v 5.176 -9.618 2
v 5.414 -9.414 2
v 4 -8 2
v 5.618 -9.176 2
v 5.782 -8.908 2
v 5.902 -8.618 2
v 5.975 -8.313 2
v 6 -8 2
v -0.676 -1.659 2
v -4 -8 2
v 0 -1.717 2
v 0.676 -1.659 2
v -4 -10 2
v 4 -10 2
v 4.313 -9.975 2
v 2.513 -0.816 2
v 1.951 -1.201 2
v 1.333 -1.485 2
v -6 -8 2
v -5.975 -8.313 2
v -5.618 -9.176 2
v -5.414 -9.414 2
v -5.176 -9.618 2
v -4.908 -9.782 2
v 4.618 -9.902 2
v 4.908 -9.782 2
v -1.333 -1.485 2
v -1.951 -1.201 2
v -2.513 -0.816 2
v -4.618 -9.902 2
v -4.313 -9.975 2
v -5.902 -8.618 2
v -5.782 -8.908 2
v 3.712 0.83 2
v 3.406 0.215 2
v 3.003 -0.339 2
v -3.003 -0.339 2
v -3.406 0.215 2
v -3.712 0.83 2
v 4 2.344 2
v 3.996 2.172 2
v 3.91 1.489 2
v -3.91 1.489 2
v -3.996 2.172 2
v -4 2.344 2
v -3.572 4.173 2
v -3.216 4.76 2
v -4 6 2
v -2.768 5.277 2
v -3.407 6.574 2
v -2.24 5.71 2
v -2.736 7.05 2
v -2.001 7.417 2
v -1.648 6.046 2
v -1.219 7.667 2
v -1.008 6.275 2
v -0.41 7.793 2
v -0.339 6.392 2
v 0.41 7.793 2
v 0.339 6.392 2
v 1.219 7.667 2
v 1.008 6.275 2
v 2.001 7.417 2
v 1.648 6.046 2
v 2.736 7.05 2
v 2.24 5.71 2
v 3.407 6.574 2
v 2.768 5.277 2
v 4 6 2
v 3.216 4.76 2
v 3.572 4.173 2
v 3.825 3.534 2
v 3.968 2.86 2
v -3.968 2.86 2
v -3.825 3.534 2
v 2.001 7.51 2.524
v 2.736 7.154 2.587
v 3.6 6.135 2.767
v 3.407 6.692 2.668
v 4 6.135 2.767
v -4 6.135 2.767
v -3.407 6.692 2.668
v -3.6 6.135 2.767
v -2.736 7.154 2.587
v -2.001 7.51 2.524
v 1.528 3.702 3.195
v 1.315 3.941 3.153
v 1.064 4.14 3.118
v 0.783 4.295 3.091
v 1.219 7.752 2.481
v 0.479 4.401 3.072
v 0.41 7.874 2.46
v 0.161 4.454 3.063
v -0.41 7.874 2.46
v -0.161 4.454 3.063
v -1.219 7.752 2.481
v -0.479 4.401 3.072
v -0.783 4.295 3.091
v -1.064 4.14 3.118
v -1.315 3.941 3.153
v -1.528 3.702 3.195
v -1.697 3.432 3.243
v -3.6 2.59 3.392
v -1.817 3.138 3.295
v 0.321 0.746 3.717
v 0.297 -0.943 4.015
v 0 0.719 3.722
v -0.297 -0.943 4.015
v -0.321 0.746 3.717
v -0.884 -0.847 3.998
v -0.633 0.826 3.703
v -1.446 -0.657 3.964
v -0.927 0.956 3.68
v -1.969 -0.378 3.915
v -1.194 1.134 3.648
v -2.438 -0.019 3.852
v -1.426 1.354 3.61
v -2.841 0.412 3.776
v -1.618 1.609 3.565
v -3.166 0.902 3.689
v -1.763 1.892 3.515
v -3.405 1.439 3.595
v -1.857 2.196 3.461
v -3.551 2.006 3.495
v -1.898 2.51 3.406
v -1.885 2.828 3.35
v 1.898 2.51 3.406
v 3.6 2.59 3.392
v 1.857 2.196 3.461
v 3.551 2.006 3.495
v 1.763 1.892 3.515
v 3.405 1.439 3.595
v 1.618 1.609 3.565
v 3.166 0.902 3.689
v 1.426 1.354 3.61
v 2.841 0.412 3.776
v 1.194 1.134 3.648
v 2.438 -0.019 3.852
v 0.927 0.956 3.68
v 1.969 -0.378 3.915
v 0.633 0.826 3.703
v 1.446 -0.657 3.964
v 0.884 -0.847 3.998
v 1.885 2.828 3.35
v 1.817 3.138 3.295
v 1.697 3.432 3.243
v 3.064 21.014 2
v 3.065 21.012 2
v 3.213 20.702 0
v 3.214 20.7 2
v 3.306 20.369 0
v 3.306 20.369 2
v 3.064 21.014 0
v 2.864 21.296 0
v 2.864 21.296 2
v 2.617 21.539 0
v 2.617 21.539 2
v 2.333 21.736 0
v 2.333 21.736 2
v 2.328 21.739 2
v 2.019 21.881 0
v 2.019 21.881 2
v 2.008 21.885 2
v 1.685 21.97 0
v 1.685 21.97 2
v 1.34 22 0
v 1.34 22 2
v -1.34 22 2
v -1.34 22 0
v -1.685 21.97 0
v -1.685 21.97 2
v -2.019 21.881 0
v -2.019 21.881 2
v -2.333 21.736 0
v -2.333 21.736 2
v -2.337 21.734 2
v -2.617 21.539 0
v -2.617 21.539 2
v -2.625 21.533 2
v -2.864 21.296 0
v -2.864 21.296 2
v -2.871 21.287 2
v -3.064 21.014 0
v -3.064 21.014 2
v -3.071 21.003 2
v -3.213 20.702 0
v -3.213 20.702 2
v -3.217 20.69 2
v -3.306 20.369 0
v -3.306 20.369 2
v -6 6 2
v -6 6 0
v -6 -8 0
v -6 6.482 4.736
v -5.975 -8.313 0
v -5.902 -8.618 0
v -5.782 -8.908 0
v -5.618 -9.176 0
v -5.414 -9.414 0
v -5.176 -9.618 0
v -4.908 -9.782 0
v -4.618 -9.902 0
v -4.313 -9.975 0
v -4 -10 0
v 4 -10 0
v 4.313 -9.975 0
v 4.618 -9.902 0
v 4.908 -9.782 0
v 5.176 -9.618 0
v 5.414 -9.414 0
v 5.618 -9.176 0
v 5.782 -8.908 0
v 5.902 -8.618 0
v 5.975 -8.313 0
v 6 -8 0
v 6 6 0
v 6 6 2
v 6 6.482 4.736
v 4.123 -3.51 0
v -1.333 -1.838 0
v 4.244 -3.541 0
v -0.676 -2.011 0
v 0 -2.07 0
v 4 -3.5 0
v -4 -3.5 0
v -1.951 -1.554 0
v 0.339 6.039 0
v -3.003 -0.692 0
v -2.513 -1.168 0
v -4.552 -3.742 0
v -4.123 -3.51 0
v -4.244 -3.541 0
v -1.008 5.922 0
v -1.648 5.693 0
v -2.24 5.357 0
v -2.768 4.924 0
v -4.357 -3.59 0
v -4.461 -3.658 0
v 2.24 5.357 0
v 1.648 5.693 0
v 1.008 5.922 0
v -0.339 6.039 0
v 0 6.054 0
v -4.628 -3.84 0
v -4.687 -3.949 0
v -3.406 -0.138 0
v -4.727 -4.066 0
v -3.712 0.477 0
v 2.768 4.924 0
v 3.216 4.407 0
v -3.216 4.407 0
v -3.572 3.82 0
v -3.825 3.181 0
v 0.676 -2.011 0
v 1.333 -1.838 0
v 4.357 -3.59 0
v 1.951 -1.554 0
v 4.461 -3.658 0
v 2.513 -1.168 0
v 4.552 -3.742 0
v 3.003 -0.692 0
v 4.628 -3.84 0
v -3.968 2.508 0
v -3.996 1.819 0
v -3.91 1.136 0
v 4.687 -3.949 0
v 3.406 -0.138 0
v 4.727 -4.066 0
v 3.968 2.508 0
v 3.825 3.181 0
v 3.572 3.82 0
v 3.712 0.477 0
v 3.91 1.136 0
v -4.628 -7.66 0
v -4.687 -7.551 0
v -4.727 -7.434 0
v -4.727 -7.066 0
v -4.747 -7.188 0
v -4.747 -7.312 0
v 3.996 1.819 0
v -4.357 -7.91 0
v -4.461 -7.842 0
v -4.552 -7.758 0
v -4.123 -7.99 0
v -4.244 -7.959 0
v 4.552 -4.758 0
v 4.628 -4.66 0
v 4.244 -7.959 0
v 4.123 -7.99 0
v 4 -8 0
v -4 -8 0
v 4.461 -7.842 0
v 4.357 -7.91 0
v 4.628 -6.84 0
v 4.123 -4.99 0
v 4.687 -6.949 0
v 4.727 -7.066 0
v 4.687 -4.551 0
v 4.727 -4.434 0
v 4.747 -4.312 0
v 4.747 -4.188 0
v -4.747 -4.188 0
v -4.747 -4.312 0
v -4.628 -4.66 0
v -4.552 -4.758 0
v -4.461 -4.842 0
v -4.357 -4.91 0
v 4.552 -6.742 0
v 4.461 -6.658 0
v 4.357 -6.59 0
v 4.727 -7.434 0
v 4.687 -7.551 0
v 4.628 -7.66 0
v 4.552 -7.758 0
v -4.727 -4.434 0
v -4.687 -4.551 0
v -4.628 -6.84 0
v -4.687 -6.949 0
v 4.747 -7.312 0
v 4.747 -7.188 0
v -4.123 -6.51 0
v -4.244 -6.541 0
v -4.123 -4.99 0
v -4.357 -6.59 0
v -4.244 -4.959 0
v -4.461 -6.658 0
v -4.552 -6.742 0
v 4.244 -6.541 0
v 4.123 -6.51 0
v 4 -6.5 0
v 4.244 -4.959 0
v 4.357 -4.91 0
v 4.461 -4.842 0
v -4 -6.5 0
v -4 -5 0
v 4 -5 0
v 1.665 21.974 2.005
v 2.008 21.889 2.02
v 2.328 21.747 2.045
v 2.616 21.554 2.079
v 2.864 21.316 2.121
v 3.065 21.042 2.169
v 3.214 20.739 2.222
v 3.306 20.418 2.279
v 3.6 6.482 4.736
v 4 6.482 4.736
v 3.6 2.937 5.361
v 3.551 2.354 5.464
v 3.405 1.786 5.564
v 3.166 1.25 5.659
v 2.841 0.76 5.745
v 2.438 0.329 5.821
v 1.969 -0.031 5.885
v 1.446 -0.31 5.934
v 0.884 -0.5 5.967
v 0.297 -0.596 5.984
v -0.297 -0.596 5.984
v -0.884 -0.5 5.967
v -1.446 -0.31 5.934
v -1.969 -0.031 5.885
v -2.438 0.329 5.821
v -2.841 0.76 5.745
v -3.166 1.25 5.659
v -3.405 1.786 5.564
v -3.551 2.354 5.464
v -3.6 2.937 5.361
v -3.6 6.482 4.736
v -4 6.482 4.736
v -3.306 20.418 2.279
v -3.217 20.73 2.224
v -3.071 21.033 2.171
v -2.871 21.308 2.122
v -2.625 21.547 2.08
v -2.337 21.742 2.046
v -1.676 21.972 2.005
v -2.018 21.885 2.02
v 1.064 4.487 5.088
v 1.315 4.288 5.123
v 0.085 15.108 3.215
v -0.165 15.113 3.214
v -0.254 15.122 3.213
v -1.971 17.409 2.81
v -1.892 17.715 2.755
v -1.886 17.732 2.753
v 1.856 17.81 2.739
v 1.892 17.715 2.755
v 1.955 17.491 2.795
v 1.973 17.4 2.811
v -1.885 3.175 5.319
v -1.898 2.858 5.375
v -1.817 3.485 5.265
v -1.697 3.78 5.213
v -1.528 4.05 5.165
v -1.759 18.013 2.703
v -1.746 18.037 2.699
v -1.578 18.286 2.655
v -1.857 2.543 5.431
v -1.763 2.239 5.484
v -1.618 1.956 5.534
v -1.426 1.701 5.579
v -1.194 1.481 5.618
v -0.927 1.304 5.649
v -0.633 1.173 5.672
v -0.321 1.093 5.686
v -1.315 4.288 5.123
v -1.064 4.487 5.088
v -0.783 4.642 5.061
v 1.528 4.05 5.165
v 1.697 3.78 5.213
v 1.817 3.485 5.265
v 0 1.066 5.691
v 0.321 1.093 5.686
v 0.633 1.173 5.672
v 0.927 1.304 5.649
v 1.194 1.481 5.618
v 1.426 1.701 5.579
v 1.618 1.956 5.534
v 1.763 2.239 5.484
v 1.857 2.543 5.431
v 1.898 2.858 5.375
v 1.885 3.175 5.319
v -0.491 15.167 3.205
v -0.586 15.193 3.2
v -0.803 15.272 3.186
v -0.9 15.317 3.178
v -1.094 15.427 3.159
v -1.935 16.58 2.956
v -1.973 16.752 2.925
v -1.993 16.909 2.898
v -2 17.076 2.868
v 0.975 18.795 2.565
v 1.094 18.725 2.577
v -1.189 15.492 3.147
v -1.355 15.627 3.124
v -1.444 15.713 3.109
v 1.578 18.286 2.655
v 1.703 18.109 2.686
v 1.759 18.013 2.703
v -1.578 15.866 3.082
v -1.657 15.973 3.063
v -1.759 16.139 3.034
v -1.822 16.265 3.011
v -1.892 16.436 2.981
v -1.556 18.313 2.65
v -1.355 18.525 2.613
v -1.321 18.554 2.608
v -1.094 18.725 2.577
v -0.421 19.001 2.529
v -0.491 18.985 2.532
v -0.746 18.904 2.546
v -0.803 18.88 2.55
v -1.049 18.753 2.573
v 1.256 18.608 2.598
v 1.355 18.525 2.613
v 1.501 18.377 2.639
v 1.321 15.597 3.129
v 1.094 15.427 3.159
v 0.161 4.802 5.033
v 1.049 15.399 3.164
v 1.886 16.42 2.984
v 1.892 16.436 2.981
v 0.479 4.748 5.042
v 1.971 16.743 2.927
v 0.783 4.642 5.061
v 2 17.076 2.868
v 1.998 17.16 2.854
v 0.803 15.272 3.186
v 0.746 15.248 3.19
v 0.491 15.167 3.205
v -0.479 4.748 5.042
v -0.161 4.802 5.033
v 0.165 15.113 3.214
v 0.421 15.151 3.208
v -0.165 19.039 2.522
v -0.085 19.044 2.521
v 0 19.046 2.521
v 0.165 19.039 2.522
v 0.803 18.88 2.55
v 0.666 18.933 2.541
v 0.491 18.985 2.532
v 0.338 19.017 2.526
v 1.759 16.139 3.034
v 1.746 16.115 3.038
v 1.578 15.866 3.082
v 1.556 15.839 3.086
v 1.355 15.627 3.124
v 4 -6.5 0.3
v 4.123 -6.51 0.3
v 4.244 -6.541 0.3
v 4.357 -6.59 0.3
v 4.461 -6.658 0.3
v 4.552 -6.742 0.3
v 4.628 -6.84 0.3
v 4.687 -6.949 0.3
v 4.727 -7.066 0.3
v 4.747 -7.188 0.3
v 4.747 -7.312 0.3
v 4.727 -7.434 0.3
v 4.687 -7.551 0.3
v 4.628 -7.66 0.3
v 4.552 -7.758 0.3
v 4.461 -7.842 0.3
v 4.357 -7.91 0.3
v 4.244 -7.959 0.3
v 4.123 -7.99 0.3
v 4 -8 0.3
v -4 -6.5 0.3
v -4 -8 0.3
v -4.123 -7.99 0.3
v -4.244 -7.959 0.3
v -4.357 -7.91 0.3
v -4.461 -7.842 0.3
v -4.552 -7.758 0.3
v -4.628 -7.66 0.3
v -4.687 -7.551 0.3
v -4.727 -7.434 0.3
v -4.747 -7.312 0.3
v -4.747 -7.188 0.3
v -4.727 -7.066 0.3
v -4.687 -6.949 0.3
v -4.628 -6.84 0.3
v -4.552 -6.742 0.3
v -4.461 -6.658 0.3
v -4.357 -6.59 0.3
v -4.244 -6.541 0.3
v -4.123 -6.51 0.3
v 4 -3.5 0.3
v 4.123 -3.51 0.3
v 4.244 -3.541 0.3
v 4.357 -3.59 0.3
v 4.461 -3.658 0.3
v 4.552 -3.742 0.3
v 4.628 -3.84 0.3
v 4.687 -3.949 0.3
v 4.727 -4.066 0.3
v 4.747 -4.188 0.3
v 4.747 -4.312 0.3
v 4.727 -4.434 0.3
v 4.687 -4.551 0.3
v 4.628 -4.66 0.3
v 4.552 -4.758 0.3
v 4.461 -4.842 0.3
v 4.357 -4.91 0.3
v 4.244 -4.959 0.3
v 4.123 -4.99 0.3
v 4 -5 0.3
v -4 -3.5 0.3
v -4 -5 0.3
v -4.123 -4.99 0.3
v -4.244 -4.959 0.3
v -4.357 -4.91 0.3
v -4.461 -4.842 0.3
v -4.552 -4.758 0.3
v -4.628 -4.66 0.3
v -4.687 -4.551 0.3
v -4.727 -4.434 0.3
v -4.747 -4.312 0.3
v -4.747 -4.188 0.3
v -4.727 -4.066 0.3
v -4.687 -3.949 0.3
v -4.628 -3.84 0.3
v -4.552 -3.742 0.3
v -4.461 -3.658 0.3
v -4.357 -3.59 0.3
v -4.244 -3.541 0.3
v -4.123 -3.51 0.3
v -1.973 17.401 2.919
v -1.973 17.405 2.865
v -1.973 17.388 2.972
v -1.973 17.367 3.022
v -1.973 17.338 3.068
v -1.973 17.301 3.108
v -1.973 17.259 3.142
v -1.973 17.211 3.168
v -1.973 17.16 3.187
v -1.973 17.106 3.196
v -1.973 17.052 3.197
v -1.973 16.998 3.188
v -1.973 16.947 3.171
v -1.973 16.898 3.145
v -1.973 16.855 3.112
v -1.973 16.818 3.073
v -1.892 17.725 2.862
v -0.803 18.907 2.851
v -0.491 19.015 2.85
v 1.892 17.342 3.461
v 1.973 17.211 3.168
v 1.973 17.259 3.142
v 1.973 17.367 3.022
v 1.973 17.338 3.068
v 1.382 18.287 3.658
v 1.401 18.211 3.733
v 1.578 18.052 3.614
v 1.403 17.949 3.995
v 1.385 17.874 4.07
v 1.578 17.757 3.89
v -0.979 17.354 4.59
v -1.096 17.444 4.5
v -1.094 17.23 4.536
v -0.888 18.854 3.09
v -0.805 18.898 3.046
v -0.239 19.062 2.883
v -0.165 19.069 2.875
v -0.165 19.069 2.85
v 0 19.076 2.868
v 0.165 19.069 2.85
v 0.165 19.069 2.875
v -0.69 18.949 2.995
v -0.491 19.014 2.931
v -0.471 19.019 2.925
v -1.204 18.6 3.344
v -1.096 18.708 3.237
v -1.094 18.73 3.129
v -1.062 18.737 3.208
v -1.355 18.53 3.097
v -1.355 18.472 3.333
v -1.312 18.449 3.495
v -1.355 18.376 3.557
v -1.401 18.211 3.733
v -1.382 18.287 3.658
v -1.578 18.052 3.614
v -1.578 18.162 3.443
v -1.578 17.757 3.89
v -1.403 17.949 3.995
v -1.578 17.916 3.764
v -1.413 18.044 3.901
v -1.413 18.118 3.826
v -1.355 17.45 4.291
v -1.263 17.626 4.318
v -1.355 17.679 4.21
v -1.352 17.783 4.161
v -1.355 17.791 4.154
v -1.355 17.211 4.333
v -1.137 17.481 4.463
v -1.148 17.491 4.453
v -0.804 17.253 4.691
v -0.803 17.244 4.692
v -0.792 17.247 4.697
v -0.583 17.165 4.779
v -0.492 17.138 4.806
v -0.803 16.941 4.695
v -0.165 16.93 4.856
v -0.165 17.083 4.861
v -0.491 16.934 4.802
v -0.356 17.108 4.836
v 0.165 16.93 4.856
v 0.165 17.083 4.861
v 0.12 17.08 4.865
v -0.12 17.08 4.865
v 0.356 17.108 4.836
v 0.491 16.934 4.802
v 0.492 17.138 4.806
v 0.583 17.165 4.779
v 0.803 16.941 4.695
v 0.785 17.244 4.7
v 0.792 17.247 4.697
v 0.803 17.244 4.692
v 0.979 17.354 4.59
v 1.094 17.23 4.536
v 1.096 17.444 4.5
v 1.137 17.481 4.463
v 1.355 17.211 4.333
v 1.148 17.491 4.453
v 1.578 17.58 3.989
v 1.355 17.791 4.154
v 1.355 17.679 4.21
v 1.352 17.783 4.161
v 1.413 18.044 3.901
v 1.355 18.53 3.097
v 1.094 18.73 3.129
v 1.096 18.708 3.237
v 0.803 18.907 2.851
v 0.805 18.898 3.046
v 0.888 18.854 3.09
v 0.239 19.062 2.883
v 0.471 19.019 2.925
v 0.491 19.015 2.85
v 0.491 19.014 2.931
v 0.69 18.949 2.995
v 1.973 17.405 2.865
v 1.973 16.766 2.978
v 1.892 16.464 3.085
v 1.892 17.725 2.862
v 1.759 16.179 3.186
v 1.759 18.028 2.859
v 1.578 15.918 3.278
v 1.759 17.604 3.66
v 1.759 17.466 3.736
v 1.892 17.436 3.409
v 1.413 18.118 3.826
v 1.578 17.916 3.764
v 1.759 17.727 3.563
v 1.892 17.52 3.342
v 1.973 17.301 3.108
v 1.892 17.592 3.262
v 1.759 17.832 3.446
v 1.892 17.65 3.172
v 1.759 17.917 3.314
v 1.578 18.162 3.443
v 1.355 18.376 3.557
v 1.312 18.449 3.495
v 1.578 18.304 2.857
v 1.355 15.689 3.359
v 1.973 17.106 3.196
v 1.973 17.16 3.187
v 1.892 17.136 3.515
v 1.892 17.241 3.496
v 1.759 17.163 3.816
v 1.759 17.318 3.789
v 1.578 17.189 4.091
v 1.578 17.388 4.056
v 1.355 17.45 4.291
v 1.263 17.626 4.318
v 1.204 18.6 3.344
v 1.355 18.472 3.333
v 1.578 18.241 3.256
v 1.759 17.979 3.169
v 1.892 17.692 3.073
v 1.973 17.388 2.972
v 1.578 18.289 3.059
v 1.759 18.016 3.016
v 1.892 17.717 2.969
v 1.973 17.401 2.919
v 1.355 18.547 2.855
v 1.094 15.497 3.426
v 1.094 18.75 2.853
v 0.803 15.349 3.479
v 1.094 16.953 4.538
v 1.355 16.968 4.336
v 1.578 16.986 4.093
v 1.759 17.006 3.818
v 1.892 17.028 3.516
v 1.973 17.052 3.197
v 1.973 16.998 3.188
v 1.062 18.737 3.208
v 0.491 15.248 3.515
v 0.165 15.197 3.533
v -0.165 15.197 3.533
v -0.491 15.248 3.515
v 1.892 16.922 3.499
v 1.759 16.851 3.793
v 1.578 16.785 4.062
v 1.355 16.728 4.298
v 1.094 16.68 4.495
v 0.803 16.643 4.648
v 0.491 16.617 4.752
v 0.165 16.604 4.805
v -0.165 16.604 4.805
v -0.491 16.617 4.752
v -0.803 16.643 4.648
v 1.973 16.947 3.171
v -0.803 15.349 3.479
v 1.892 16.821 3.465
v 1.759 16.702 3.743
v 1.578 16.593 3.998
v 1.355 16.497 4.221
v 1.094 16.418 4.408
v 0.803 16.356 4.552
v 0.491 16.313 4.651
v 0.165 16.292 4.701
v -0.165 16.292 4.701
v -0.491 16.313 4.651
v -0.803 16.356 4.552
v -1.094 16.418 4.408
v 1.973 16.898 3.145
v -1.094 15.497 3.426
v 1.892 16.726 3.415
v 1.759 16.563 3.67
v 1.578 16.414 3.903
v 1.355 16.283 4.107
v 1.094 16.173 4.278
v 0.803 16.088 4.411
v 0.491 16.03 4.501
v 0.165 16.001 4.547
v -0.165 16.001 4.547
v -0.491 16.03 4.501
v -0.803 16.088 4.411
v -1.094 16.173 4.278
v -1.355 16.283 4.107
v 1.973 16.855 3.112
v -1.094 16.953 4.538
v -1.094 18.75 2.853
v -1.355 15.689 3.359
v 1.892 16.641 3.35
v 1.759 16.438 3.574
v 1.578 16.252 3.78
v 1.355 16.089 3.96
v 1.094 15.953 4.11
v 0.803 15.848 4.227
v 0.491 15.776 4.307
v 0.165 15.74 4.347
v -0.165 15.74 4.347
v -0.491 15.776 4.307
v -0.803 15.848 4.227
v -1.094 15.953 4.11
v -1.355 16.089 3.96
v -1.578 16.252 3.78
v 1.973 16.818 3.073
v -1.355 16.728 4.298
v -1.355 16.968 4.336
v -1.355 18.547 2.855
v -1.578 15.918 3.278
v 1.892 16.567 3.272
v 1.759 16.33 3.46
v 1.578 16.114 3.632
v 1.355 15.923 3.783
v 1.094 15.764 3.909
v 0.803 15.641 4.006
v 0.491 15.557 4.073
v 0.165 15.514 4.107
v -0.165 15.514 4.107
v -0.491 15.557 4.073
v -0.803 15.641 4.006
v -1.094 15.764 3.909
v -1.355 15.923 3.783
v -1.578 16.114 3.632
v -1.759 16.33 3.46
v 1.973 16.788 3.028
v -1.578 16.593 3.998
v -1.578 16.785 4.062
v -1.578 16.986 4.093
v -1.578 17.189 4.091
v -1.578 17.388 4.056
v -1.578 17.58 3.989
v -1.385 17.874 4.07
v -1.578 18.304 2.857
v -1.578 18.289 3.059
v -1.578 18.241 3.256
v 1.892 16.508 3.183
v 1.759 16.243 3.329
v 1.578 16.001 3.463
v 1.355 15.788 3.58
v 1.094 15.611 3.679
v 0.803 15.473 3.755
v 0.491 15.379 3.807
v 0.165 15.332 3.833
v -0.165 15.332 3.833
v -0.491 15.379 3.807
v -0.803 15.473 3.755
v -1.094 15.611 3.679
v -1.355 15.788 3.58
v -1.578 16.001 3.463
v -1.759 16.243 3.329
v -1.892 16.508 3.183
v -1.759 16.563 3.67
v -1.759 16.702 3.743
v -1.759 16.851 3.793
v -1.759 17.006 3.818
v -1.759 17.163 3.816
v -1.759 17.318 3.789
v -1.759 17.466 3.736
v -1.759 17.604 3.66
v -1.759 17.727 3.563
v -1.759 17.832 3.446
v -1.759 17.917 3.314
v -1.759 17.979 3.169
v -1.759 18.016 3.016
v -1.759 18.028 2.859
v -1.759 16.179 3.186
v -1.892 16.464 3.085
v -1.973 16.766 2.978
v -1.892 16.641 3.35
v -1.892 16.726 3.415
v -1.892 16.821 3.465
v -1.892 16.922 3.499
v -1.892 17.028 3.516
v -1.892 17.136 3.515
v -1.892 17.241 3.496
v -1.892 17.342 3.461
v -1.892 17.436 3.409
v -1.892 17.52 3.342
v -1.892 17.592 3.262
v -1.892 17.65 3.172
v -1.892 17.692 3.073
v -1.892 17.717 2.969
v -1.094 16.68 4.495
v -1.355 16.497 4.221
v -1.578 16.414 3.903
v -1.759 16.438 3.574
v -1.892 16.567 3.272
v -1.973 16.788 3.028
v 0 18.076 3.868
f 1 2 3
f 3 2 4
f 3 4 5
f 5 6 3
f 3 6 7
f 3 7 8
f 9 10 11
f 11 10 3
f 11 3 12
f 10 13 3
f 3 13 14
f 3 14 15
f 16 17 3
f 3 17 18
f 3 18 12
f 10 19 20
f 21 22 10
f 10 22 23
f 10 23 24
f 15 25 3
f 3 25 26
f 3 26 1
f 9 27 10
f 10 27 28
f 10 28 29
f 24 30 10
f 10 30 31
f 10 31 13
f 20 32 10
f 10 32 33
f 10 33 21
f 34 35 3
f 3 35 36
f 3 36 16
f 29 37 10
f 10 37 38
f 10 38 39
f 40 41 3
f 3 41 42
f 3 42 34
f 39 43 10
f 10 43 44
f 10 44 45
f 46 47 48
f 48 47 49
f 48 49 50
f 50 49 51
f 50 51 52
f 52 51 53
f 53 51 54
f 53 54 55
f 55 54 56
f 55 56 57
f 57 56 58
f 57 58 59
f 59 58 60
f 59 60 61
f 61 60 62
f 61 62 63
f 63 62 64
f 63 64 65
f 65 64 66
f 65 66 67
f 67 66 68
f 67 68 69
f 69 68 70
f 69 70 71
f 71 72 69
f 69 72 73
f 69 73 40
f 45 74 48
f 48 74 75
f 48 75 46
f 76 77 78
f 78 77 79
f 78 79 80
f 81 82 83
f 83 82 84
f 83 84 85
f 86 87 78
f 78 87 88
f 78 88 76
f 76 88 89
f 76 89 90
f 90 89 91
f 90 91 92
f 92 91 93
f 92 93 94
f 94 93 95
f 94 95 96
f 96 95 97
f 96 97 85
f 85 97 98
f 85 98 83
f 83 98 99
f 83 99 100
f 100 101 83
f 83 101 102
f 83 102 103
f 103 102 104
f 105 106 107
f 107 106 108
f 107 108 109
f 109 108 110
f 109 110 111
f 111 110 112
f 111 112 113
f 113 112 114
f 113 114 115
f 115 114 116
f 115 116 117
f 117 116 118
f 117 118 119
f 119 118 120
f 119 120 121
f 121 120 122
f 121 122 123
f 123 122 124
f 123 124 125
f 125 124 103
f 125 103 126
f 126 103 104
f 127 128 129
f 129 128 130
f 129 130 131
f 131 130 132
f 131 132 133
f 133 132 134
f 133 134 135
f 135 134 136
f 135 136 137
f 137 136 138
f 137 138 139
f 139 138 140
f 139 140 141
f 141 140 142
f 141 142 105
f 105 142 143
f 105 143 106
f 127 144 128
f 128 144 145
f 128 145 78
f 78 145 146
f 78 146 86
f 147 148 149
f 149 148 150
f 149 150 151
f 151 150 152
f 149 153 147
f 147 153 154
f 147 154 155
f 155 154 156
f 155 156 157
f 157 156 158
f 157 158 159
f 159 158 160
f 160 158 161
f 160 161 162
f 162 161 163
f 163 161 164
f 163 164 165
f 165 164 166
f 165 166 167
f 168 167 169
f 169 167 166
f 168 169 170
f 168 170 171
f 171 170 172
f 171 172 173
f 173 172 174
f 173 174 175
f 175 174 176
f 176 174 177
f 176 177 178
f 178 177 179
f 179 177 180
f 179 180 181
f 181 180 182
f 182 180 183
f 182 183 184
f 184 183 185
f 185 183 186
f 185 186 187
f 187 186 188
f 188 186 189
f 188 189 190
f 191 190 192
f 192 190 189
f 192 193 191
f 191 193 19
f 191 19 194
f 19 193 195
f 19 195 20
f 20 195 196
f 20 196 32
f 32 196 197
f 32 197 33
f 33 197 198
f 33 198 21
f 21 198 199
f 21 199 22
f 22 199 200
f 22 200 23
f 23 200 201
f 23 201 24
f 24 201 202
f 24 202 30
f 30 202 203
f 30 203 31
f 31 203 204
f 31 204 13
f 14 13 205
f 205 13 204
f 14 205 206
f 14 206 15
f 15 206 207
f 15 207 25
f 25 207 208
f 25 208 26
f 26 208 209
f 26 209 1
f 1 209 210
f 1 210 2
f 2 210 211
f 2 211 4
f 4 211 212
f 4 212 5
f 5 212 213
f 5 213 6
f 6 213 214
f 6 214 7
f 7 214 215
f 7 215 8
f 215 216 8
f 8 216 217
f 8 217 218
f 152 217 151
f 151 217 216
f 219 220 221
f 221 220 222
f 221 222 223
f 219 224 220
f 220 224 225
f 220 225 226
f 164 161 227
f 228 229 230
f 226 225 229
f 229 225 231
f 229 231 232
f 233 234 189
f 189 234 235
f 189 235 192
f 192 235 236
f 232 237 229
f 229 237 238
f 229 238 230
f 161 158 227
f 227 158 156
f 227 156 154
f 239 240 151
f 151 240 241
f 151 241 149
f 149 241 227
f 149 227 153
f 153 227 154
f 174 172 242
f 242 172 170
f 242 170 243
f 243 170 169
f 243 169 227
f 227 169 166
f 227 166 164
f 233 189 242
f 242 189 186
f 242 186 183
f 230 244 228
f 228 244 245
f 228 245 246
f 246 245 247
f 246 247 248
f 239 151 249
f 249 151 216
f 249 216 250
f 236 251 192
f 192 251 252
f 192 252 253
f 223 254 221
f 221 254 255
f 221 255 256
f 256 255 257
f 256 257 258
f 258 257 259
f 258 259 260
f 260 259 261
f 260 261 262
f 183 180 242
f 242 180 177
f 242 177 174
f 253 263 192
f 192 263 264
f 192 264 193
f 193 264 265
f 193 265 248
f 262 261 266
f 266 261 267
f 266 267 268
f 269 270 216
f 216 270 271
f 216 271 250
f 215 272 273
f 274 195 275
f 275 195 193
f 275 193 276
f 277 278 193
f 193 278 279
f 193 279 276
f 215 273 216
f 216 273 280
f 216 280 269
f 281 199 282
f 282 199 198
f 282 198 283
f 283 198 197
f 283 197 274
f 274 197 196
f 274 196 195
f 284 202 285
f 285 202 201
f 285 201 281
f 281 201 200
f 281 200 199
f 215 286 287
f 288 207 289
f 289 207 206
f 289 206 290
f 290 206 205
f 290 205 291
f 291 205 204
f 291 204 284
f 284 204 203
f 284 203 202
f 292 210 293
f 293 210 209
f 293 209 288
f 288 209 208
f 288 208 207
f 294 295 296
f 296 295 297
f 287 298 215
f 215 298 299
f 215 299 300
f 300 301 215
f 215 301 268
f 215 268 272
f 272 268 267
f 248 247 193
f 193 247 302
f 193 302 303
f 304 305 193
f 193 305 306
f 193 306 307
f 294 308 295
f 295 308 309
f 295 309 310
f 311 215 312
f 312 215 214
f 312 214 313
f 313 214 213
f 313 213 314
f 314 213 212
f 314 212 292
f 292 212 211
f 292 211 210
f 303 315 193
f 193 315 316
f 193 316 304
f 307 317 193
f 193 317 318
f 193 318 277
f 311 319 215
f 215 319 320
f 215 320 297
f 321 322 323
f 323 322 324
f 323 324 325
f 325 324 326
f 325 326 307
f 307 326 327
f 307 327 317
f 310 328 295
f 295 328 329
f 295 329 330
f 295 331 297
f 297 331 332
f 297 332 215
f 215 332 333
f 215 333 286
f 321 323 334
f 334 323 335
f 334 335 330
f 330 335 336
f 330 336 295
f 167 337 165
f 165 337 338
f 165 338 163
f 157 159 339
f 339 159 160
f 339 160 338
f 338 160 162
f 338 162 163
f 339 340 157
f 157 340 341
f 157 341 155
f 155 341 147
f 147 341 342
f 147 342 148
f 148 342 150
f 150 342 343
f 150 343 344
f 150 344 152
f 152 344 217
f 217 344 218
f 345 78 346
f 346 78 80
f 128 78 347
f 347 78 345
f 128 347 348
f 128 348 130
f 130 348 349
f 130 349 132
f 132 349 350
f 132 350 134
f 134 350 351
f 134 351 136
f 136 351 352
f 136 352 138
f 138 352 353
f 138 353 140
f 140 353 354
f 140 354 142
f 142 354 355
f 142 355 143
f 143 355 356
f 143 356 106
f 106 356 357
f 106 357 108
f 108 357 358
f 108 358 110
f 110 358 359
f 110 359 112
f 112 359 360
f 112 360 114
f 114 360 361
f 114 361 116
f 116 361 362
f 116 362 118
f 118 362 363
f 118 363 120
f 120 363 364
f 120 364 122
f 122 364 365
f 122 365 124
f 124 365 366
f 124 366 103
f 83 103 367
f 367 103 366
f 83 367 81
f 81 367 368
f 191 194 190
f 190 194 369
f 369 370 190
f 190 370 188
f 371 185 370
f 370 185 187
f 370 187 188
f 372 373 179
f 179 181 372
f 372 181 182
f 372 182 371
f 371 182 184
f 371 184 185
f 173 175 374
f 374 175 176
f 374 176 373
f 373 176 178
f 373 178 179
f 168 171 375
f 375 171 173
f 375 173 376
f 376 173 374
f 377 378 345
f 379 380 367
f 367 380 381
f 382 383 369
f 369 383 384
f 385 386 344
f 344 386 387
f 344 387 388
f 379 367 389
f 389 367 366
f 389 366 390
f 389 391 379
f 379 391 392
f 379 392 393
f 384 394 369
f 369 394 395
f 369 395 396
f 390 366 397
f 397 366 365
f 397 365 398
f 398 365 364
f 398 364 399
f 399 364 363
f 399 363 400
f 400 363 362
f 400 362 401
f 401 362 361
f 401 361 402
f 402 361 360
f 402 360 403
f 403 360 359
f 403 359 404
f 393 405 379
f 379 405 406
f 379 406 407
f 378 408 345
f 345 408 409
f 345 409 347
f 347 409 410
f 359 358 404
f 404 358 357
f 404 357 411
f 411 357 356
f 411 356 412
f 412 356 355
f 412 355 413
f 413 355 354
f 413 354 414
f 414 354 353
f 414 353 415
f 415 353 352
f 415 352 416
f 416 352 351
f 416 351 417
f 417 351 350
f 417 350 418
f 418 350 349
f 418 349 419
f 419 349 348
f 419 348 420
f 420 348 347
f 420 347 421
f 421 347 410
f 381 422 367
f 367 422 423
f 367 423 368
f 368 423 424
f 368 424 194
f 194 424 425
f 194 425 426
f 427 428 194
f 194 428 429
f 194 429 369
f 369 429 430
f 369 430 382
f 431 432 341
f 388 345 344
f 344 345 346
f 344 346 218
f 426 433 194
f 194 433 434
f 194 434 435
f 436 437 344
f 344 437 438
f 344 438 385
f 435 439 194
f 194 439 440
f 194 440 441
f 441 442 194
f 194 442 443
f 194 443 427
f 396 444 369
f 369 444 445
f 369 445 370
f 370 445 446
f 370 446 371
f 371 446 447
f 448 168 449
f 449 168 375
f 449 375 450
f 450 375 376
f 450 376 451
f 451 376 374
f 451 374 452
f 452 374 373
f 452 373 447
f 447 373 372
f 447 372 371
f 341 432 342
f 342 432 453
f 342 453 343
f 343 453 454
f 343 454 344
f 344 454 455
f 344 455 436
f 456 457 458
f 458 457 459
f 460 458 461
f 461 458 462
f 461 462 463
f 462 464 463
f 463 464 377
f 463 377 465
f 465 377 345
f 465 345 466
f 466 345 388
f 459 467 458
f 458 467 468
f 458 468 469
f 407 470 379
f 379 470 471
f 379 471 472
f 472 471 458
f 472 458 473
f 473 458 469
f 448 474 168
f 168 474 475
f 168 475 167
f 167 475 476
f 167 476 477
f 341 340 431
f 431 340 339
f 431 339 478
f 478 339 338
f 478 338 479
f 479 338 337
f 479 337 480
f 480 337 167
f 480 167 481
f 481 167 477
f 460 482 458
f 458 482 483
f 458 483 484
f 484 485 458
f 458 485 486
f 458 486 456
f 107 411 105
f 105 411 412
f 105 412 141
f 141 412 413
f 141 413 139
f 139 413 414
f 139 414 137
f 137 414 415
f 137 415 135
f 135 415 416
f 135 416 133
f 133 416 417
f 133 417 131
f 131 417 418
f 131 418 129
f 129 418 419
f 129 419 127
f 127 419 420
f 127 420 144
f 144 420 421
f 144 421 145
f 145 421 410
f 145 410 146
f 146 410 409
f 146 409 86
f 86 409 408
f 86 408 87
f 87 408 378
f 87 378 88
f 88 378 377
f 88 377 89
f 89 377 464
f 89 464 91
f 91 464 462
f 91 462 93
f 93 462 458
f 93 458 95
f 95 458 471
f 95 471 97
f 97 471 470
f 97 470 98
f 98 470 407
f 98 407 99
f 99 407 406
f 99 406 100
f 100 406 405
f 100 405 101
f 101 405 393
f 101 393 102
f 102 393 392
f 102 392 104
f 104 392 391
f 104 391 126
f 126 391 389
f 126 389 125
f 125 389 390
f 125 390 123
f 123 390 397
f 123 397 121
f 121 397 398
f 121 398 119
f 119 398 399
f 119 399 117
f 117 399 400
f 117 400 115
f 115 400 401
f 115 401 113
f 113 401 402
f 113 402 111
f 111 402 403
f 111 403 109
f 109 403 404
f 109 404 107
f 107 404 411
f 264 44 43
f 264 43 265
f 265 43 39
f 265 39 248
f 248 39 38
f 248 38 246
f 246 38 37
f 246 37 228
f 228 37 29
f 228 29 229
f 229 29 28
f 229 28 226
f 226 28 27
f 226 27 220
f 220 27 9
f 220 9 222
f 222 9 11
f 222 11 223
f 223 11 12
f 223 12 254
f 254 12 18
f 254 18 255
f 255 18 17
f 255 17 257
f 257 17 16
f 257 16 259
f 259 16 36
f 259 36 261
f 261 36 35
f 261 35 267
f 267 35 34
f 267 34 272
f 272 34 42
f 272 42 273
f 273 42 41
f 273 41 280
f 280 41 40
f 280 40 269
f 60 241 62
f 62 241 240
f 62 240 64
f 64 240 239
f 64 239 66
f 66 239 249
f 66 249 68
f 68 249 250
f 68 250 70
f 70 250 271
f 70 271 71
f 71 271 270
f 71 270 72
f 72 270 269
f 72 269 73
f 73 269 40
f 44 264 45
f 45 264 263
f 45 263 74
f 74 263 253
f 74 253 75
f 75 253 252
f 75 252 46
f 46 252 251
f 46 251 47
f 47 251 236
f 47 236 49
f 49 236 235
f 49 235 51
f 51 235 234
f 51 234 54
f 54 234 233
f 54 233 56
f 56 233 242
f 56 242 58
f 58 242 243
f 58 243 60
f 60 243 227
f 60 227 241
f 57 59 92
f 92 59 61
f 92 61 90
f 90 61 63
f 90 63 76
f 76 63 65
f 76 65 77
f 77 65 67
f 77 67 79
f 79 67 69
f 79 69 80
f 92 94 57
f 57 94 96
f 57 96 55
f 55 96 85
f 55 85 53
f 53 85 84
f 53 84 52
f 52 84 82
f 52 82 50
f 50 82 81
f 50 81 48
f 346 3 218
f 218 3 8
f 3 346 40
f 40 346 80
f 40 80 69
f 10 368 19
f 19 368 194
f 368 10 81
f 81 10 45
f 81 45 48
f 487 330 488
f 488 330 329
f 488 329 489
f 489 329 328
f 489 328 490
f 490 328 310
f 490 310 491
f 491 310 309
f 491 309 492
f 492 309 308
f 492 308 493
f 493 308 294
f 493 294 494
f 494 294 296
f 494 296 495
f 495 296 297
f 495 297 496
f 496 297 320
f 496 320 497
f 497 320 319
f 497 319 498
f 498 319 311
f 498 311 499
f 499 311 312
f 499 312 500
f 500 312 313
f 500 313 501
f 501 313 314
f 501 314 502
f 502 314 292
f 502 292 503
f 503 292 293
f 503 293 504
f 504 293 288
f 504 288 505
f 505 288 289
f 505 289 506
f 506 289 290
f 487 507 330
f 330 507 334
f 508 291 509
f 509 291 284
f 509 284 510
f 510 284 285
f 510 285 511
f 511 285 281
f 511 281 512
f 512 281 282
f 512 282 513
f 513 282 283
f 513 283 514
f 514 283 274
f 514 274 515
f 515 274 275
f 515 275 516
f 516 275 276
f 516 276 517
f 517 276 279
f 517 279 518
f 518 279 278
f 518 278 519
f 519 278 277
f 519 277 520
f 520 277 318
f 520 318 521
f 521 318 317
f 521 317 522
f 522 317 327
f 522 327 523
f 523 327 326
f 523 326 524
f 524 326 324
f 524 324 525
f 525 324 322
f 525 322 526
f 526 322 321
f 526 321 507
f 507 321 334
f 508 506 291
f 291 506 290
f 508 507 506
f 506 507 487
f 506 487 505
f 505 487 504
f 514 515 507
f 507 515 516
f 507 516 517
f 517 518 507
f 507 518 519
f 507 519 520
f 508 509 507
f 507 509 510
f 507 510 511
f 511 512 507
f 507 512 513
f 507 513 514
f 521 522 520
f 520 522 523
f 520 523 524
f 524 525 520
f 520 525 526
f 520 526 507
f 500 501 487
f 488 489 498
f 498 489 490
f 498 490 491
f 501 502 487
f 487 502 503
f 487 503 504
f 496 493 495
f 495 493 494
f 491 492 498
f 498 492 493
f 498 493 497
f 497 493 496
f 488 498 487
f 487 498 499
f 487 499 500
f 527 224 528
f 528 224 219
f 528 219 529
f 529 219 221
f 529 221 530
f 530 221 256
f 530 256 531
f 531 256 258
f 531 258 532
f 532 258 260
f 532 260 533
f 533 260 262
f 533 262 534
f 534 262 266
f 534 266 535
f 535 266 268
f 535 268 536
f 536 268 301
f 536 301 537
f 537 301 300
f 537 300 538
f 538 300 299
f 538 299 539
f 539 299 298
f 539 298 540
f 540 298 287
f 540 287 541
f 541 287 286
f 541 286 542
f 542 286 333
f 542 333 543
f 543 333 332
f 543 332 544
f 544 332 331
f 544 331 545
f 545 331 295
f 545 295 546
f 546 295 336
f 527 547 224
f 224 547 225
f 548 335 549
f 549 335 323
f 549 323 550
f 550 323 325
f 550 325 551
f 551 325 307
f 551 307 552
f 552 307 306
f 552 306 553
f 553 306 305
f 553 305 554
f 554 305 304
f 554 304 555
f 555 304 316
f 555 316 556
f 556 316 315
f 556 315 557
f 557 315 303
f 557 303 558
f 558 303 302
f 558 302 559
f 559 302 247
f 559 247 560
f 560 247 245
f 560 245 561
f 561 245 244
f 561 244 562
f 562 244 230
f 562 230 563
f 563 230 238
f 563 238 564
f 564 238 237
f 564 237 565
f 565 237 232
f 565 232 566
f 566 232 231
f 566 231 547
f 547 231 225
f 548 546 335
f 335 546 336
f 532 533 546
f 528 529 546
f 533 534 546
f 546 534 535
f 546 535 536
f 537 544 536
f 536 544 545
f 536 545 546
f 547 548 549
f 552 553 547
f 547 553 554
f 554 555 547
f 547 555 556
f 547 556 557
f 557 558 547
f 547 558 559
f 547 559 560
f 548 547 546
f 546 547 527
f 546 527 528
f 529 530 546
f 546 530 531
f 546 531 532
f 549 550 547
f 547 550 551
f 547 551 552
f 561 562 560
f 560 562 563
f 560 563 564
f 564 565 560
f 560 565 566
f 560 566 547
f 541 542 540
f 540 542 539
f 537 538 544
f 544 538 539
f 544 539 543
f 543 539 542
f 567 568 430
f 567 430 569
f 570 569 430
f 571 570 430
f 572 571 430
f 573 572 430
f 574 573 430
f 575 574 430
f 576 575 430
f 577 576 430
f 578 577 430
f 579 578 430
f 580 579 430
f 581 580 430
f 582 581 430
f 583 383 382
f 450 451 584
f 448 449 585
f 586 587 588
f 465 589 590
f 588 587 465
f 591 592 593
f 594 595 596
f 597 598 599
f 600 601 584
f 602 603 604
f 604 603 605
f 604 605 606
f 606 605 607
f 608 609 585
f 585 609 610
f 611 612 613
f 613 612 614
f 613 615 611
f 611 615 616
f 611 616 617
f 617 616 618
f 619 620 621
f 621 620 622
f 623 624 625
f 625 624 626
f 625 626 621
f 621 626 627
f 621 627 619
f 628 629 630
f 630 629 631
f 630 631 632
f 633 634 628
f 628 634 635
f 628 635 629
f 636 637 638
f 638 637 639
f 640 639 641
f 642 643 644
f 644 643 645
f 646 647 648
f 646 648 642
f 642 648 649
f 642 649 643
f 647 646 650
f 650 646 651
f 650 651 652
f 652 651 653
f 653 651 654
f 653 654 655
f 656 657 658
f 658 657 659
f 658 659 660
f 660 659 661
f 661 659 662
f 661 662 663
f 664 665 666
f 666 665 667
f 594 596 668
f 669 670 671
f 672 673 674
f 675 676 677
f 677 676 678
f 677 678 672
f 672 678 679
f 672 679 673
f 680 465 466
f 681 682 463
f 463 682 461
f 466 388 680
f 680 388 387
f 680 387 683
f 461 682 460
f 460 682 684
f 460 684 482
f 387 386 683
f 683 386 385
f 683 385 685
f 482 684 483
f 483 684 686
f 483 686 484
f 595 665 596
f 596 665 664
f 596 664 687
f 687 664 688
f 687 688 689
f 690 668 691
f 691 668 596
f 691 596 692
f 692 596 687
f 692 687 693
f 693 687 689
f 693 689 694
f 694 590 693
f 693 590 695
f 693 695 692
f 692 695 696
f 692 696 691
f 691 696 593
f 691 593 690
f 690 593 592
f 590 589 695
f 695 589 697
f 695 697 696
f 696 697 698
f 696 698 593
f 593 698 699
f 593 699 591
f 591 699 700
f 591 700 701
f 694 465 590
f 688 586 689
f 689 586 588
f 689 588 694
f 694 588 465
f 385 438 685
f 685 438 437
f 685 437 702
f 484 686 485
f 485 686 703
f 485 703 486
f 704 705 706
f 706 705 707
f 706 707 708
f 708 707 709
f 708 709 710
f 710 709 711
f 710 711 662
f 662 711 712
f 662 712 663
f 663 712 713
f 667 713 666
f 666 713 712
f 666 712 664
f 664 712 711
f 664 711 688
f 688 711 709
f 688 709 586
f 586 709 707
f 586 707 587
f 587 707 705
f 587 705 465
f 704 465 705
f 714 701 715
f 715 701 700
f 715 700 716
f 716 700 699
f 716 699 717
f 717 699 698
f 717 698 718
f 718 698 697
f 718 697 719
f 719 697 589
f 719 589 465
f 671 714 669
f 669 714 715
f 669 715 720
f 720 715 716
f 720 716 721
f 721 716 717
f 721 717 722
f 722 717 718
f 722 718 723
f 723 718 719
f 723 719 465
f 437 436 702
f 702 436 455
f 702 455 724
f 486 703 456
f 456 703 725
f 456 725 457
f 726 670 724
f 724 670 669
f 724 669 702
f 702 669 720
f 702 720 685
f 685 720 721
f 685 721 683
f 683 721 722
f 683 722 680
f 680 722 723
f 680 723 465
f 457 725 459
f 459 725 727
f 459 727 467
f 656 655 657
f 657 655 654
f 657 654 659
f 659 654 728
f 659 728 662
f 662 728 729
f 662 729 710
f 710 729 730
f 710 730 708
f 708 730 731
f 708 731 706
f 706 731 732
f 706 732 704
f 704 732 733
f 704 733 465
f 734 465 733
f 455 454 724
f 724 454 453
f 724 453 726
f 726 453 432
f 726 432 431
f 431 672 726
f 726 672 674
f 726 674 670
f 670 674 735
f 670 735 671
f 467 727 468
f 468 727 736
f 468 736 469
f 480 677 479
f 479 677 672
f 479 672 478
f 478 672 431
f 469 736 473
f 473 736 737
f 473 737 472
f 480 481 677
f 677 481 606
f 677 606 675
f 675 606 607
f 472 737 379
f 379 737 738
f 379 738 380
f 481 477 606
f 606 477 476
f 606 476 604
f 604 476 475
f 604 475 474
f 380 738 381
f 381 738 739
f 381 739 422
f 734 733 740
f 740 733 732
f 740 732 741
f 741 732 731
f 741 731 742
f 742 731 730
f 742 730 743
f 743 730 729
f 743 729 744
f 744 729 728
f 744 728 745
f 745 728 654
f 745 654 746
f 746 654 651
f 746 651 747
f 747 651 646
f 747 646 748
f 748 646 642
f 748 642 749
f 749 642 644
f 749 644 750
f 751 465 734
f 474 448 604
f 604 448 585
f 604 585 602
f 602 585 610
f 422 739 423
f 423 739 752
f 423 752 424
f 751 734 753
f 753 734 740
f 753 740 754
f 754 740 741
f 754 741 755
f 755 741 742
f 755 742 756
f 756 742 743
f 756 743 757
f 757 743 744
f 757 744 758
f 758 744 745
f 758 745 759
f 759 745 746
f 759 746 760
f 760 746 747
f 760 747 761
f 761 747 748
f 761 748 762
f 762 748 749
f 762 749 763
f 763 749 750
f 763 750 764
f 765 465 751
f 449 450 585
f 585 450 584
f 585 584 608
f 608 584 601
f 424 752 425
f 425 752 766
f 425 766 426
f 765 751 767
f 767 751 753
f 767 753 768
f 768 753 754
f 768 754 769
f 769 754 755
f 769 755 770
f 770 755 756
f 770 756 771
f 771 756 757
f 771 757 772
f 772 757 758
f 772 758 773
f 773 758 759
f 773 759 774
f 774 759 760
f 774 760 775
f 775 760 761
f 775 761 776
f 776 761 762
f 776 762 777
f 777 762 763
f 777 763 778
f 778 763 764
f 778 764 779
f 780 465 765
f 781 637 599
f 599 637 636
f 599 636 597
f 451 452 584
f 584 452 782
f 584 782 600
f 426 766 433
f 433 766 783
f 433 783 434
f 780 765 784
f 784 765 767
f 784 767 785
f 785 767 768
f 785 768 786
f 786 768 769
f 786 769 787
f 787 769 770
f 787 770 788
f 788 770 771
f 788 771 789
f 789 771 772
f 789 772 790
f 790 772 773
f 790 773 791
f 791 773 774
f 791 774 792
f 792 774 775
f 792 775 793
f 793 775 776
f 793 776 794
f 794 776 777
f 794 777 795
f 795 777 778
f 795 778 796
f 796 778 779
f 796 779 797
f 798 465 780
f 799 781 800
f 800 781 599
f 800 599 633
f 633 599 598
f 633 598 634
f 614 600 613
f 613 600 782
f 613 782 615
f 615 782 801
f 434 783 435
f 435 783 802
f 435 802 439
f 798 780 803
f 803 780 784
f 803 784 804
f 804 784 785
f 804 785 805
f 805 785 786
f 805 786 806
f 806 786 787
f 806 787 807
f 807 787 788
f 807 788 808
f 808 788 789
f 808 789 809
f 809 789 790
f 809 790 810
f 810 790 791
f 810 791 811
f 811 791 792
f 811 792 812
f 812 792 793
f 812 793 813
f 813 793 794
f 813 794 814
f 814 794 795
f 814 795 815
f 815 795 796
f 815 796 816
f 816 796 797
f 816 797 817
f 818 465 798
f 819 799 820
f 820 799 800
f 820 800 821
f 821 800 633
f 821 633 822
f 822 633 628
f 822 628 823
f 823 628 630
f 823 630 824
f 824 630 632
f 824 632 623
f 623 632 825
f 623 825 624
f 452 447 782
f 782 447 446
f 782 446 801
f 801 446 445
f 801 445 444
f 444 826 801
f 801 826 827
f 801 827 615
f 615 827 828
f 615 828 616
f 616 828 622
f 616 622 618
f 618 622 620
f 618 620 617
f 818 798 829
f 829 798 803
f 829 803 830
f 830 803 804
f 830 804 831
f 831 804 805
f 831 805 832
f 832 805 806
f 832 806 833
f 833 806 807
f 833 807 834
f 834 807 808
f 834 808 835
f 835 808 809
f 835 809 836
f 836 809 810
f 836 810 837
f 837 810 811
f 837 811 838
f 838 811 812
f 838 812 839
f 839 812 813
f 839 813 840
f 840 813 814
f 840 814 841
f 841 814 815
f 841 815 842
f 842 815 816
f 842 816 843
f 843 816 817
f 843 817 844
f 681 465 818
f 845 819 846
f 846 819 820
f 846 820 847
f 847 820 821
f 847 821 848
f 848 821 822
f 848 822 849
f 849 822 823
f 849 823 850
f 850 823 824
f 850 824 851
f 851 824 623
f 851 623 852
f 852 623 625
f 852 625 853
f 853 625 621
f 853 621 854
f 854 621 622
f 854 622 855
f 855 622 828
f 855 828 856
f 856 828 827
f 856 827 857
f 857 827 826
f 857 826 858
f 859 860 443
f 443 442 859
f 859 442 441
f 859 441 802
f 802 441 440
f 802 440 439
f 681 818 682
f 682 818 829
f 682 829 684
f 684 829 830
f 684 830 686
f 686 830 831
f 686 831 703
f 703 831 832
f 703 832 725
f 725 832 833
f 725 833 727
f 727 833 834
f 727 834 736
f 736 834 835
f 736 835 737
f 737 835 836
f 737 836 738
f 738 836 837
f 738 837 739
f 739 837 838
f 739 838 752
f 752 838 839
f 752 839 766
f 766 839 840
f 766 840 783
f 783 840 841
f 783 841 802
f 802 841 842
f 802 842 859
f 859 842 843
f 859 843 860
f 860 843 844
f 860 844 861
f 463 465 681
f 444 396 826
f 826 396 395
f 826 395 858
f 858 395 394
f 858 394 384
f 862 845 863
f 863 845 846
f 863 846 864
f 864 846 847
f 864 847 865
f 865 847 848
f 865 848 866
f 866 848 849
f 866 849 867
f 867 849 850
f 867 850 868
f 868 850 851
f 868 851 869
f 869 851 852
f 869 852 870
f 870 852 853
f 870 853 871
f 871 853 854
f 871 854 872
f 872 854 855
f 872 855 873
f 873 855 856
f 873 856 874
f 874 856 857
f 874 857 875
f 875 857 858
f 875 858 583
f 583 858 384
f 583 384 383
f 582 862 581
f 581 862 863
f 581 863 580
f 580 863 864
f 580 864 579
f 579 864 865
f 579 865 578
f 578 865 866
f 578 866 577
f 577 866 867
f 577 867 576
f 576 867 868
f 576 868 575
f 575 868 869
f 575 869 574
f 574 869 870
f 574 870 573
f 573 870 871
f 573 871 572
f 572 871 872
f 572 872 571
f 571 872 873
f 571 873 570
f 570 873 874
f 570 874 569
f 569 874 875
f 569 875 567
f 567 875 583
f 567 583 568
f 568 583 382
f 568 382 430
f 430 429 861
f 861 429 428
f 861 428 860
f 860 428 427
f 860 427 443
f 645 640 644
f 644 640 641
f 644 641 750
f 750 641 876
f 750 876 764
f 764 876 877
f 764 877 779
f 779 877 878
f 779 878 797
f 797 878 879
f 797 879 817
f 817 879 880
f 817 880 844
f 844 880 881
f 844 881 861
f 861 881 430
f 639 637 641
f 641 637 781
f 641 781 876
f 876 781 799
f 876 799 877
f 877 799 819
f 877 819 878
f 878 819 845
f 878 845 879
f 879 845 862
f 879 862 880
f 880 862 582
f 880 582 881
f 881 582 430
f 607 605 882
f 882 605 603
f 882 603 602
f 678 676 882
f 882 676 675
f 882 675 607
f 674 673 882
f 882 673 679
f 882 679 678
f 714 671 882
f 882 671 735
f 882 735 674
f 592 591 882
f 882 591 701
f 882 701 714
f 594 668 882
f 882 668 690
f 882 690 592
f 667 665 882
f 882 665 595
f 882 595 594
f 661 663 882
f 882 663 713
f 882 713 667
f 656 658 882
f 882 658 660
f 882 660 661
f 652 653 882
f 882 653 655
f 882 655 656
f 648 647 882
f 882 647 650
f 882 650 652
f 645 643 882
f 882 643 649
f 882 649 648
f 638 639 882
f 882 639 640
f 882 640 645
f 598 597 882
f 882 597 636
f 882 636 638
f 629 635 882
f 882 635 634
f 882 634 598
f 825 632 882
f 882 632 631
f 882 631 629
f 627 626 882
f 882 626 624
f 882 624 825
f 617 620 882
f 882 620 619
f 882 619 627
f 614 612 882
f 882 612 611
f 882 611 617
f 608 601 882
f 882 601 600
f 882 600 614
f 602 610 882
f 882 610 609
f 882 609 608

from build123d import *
from build123d.topology import SkipClean

# Parameters (mm, degrees)
BOSS_EXTRUDE1_DEPTH     = 2
SKETCH2_R               = 1.9
BOSS_EXTRUDE2_DEPTH     = 2
CUT_EXTRUDE1_REACH      = 24.481
SKETCH4_R               = 4
BOSS_EXTRUDE3_REACH     = 24.481
BOSS_EXTRUDE4_DEPTH     = 2
BOSS_EXTRUDE5_DEPTH     = 2
CUT_EXTRUDE2_DEPTH      = 0.3
REVOLVE1_ANGLE          = 180
CUT_EXTRUDE3_DEPTH      = 24.576202563
CUT_EXTRUDE3_DEPTH_BACK = 24.576202563


with BuildPart() as part:
    # Sketch1 → Boss-Extrude1 (new body)
    with BuildSketch(Plane.XY):
        with BuildLine():
            Line((-4, -10), (4, -10))
            ThreePointArc((4, -10), (5.414213562, -9.414213562), (6, -8))
            Line((6, -8), (6, 6))
            Line((6, 6), (3.305891799, 20.36857707))
            ThreePointArc((3.305891799, 20.36857707), (2.6174191, 21.539018216), (1.340147425, 22))
            Line((1.340147425, 22), (-1.340147425, 22))
            ThreePointArc((-1.340147425, 22), (-2.6174191, 21.539018216), (-3.305891799, 20.36857707))
            Line((-3.305891799, 20.36857707), (-6, 6))
            Line((-6, 6), (-6, -8))
            ThreePointArc((-6, -8), (-5.414213562, -9.414213562), (-4, -10))
        make_face()
    extrude(amount=BOSS_EXTRUDE1_DEPTH)

    # Sketch2 → Boss-Extrude2 (add)
    with BuildSketch(Plane(origin=(0, 1.005401315, 5.701914197), x_dir=(-1, 0, 0), z_dir=(0, 0.1736481776669307, 0.984807753012208))):
        with BuildLine():
            Line((-3.6, -1.961550163), (-3.6, -5.561550163))
            Line((-3.6, -5.561550163), (-6, -5.561550163))
            Line((-6, -5.561550163), (-3.305891799, -19.711836261))
            add(Edge.make_bspline(
                [(-3.305891799, -19.711836261), (-3, -21.318474211), (-1.340147425, -21.318474211)],
                knots=[3.326940604, 3.326940604, 3.326940604, 4.71238898, 4.71238898, 4.71238898], degree=2, weights=[1, 0.769509108, 1]))
            Line((-1.340147425, -21.318474211), (1.340147425, -21.318474211))
            add(Edge.make_bspline(
                [(1.340147425, -21.318474211), (3, -21.318474211), (3.305891799, -19.711836261)],
                knots=[4.71238898, 4.71238898, 4.71238898, 6.097837357, 6.097837357, 6.097837357], degree=2, weights=[1, 0.769509108, 1]))
            Line((3.305891799, -19.711836261), (6, -5.561550163))
            Line((6, -5.561550163), (3.6, -5.561550163))
            Line((3.6, -5.561550163), (3.6, -1.961550163))
            ThreePointArc((3.6, -1.961550163), (0, 1.638449837), (-3.6, -1.961550163))
        make_face()
        with Locations(Location((0, -1.961550163, 0), (0, 0, 90))):
            Circle(SKETCH2_R, mode=Mode.SUBTRACT)
    extrude(amount=-BOSS_EXTRUDE2_DEPTH)

    # Cut-Extrude1: up to this plane
    cut_extrude1_end = Plane(origin=(1.340147425, 20, 0), z_dir=(0, 0, 1))
    # Sketch4 → Cut-Extrude1 (cut, up to the surface)
    with BuildSketch(Plane(origin=(0, 0.658104959, 3.732298691), x_dir=(-1, 0, 0), z_dir=(0, -0.1736481776669307, -0.9848077530122081)), mode=Mode.PRIVATE) as cut_extrude1_sk1:
        with Locations(Location((0, 1.961550163, 0), (0, 0, 90))):
            Circle(SKETCH4_R)
    cut_extrude1_tool1 = split(extrude(cut_extrude1_sk1.sketch, amount=CUT_EXTRUDE1_REACH, mode=Mode.PRIVATE), bisect_by=cut_extrude1_end, keep=Keep.BOTH, mode=Mode.PRIVATE)
    add(cut_extrude1_tool1.solids().sort_by_distance((0, 2.589855, 3.391679))[0], mode=Mode.SUBTRACT)

    # Sketch5 → Boss-Extrude3 (add, up to next)
    with BuildSketch(Plane(origin=(0, 0.658104959, 3.732298691), x_dir=(-1, 0, 0), z_dir=(0, -0.1736481776669307, -0.9848077530122081)), mode=Mode.PRIVATE) as boss_extrude3_sk1:
        with BuildLine():
            Line((-6, 5.561550163), (-4, 5.561550163))
            ThreePointArc((-4, 5.561550163), (0, 7.342999782), (4, 5.561550163))
            Line((4, 5.561550163), (6, 5.561550163))
            Line((6, 5.561550163), (5.159538931, 9.975910572))
            Line((5.159538931, 9.975910572), (-5.159538931, 9.975910572))
            Line((-5.159538931, 9.975910572), (-6, 5.561550163))
        make_face()
    boss_extrude3_tool1 = extrude(boss_extrude3_sk1.sketch, amount=BOSS_EXTRUDE3_REACH, mode=Mode.PRIVATE) - part.part
    add(boss_extrude3_tool1.solids().sort_by_distance((0, 8.606511, 2.33078))[0])

    # Sketch6 → Boss-Extrude4 (add)
    with BuildSketch(Plane(origin=(6, 0, 0), x_dir=(0, 0, -1), z_dir=(1, 0, 0))):
        Polygon((-4.736161147, 6.482459034), (-2, 6), (-2, -8), align=None)
    extrude(amount=-BOSS_EXTRUDE4_DEPTH)

    # Sketch7 → Boss-Extrude5 (add)
    with BuildSketch(Plane.ZY.offset(6)):
        Polygon((2, 6), (4.736161147, 6.482459034), (2, -8), align=None)
    extrude(amount=-BOSS_EXTRUDE5_DEPTH)

    # Sketch8 → Cut-Extrude2 (cut)
    with BuildSketch(Plane(origin=(0, 0, 0), x_dir=(-1, 0, 0), z_dir=(0, 0, -1))):
        with BuildLine():
            Line((-4, -3.5), (4, -3.5))
            ThreePointArc((4, -3.5), (4.75, -4.25), (4, -5))
            Line((4, -5), (-4, -5))
            ThreePointArc((-4, -5), (-4.75, -4.25), (-4, -3.5))
        make_face()
        with BuildLine():
            Line((-4, -6.5), (4, -6.5))
            ThreePointArc((4, -6.5), (4.75, -7.25), (4, -8))
            Line((4, -8), (-4, -8))
            ThreePointArc((-4, -8), (-4.75, -7.25), (-4, -6.5))
        make_face()
    extrude(amount=-CUT_EXTRUDE2_DEPTH, mode=Mode.SUBTRACT)

    # Sketch9 → Revolve1 (revolve)
    with BuildSketch(Plane(origin=(0, 1.005401315, 5.701914197), x_dir=(1, 0, 0), z_dir=(0, 0.1736481776669307, 0.9848077530122081))):
        with BuildLine():
            Line((-2, 16.318474211), (2, 16.318474211))
            ThreePointArc((2, 16.318474211), (0, 14.318474211), (-2, 16.318474211))
        make_face()
    revolve(axis=Axis((0, 17.075961235, 2.868240888), (-1, 0, 0)), revolution_arc=REVOLVE1_ANGLE)

    # Sketch11 → Cut-Extrude3 (cut, two sides)
    with SkipClean():  # the faces are left unmerged after this step: merging them gives an invalid solid
        with BuildSketch(Plane(origin=(0, 0, 0), x_dir=(0, 0, -1), z_dir=(1, 0, 0))) as cut_extrude3_sk:
            Polygon((-4.868240888, 17.075961235), (-2.868240888, 19.075961235), (-5.75514434, 19.075961235), align=None)
        extrude(amount=CUT_EXTRUDE3_DEPTH, mode=Mode.SUBTRACT)
        extrude(cut_extrude3_sk.sketch, amount=-CUT_EXTRUDE3_DEPTH_BACK, mode=Mode.SUBTRACT)


solid = part.part
